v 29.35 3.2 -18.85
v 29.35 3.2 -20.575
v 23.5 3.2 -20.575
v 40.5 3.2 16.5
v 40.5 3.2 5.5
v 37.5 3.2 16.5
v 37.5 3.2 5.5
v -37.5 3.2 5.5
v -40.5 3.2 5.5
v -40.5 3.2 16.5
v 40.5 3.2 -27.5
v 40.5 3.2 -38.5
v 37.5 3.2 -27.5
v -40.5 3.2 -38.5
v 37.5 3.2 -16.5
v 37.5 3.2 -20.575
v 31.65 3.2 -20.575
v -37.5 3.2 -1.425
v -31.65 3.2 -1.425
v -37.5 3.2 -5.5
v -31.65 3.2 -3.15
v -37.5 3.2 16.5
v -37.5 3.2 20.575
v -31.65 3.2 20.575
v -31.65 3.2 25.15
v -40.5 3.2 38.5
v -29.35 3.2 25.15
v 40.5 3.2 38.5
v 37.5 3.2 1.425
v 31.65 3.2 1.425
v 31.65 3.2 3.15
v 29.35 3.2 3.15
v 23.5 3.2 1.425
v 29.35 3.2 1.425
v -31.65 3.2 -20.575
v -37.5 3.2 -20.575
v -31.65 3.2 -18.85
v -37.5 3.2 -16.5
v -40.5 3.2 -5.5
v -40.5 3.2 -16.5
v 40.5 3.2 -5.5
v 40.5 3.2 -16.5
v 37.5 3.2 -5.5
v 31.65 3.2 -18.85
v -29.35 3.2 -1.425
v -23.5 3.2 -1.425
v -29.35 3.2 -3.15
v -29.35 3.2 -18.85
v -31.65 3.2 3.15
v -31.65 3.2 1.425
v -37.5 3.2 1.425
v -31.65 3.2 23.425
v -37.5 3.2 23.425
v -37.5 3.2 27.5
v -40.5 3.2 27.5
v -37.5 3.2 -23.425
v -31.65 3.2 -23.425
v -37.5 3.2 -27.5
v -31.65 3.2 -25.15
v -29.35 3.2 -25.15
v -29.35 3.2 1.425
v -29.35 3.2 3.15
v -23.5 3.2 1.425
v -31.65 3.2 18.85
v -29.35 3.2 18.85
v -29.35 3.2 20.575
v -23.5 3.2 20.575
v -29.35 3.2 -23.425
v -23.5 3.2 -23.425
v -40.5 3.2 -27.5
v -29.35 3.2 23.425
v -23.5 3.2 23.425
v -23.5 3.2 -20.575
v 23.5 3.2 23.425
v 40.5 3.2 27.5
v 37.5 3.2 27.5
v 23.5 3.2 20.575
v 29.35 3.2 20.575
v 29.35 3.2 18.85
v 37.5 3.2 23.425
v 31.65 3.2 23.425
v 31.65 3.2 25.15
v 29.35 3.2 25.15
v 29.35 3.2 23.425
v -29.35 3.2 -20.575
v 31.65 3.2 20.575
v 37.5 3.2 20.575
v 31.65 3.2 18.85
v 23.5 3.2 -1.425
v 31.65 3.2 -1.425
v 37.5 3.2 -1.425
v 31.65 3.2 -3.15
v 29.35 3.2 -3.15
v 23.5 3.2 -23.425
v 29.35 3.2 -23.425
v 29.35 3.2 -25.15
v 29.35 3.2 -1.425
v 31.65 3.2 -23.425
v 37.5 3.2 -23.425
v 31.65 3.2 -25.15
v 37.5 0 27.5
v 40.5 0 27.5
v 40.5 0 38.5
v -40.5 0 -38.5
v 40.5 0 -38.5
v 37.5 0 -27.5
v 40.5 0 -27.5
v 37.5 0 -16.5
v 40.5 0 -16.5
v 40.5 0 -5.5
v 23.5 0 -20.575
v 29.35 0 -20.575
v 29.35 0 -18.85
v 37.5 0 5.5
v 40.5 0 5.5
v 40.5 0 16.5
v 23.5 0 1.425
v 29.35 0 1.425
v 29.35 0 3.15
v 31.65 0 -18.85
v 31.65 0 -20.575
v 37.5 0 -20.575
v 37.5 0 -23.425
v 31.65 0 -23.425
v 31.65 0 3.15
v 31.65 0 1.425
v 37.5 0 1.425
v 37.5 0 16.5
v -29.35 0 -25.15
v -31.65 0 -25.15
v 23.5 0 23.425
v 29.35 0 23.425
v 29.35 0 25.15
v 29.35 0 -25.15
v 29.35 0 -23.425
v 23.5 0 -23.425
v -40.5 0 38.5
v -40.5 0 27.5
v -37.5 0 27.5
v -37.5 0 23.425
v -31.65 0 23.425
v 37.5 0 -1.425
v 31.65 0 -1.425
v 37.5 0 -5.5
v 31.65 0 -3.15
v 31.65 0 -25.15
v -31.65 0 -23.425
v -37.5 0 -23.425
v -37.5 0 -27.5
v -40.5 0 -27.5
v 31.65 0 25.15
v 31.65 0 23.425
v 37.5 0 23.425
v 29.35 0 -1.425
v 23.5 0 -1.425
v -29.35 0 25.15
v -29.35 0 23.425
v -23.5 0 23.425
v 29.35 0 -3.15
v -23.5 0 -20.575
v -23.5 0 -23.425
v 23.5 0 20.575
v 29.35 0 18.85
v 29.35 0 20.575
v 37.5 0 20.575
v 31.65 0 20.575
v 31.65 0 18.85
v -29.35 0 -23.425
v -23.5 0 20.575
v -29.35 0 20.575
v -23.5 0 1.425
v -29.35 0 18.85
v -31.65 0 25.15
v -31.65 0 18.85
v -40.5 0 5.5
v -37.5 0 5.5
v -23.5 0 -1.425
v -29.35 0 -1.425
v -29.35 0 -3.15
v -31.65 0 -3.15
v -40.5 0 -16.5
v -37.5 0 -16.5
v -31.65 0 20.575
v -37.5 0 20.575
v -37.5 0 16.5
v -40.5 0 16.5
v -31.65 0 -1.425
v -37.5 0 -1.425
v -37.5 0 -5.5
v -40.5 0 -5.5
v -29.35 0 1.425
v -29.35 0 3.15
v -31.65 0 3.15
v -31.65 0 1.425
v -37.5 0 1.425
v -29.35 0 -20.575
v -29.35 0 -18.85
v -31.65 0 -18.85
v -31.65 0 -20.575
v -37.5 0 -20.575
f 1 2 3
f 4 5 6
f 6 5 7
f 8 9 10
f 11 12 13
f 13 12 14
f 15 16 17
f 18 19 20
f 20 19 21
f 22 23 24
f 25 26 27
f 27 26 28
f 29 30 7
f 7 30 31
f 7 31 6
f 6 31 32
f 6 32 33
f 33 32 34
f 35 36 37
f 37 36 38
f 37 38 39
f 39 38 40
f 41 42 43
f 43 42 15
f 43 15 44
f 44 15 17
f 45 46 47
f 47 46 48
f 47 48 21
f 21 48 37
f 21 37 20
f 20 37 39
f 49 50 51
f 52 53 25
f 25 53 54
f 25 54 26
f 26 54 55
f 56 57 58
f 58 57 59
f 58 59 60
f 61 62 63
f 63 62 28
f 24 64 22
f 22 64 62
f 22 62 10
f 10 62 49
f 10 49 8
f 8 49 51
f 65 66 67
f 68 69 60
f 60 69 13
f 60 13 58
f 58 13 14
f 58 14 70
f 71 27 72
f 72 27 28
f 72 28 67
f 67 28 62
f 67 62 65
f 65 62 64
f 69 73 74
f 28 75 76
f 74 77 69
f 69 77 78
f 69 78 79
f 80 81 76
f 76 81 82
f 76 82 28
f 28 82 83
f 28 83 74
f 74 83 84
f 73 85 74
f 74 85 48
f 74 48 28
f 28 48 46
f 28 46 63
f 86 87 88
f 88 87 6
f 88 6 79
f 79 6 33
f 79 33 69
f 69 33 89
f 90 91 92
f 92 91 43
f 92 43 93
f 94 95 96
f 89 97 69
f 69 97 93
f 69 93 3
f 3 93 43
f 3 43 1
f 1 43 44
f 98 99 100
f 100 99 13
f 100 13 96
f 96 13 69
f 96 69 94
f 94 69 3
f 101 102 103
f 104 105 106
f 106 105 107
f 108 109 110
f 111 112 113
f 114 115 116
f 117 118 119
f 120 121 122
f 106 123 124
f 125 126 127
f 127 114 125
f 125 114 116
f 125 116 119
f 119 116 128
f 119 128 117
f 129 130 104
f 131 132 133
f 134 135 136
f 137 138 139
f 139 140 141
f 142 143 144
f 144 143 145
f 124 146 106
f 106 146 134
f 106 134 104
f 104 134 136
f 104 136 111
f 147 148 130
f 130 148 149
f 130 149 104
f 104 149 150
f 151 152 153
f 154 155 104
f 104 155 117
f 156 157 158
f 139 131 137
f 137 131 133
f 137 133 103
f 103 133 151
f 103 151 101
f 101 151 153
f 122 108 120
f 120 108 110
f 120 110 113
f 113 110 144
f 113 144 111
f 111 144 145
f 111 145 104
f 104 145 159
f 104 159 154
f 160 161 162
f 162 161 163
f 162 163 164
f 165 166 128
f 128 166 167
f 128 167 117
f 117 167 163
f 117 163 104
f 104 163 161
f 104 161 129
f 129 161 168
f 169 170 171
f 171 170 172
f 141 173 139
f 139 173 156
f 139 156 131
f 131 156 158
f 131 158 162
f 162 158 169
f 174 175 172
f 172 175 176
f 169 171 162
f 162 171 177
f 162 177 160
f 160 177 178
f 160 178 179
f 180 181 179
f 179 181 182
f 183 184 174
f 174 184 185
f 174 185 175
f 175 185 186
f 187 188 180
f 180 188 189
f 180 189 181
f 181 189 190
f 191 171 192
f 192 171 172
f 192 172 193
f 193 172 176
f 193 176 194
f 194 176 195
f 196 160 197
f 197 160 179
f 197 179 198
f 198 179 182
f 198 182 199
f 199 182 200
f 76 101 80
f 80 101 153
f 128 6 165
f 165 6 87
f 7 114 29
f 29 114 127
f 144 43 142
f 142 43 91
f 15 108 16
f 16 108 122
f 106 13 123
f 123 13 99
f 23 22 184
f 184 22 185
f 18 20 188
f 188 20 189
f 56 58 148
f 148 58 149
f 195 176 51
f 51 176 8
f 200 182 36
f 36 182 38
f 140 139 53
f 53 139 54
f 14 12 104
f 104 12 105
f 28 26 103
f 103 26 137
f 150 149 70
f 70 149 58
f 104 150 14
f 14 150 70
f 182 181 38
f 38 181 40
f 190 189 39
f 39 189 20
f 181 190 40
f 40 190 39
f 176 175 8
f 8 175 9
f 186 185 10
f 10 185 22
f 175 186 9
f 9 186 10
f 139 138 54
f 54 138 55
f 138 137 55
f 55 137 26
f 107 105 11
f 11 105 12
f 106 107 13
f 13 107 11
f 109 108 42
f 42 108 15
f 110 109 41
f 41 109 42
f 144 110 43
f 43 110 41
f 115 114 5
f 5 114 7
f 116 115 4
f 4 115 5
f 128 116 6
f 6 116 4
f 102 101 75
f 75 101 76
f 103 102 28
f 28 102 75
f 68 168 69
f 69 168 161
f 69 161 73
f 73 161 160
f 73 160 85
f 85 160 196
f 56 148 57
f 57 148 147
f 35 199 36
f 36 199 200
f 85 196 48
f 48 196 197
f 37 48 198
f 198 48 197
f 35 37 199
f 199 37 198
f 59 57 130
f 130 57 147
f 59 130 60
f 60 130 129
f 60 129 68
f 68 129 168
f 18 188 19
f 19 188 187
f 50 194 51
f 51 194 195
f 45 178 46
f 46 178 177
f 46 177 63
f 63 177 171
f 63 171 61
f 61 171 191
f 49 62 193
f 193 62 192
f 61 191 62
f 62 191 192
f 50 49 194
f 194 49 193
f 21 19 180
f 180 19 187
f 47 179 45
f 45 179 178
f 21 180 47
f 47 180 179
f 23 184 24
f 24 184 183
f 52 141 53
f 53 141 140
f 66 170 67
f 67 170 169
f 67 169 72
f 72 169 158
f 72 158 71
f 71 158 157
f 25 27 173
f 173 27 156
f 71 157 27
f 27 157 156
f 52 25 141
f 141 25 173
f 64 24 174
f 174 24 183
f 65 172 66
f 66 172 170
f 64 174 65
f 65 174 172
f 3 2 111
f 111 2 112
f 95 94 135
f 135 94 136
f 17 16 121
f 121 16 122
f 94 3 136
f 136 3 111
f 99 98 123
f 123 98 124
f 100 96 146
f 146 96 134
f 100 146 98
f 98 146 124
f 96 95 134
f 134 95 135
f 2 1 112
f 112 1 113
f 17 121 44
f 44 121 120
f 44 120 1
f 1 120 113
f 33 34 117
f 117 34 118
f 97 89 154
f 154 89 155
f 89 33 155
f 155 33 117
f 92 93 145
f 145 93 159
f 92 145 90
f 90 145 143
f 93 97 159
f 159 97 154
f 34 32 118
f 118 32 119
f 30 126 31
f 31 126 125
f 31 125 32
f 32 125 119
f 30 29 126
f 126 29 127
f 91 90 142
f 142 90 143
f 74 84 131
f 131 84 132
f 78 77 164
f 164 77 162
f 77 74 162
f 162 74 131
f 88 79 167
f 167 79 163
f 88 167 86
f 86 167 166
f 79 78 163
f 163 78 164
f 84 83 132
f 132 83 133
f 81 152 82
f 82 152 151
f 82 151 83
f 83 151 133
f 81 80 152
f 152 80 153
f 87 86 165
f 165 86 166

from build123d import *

# Parameters (mm, degrees)
SKETCH1_W                 = 75
SKETCH1_H                 = 77
BOSS_EXTRUDE1_DEPTH       = 3.2
SKETCH2_W                 = 3
SKETCH2_H                 = 11
BOSS_EXTRUDE3_DEPTH       = 3.2
LPATTERN1_COUNT           = 4
LPATTERN1_PITCH           = 22
SKETCH4_W                 = 3
SKETCH4_H                 = 11
BOSS_EXTRUDE5_DEPTH       = 3.2
LPATTERN2_COUNT           = 4
LPATTERN2_PITCH           = 22
SKETCH5_W                 = 14
SKETCH5_H                 = 2.85
SKETCH5_W_2               = 2.3
SKETCH5_H_2               = 6.3
CUT_EXTRUDE1_DEPTH        = 56.970885289
LPATTERN3_COUNT           = 3
LPATTERN3_PITCH           = 22
MIRROR1_COPY_1_SKETCH_W   = 14
MIRROR1_COPY_1_SKETCH_H   = 2.85
MIRROR1_COPY_1_SKETCH_W_2 = 2.3
MIRROR1_COPY_1_SKETCH_H_2 = 6.3
MIRROR1_COPY_1_DEPTH      = 56.970885289
MIRROR1_COPY_2_SKETCH_W   = 14
MIRROR1_COPY_2_SKETCH_H   = 2.85
MIRROR1_COPY_2_SKETCH_W_2 = 2.3
MIRROR1_COPY_2_SKETCH_H_2 = 6.3
MIRROR1_COPY_2_DEPTH      = 56.970885289


with BuildPart() as part:
    # Sketch1 → Boss-Extrude1 (new body)
    with BuildSketch(Plane(origin=(0, 0, 0), x_dir=(1, 0, 0), z_dir=(0, 1, 0))):
        Rectangle(SKETCH1_W, SKETCH1_H)
    extrude(amount=BOSS_EXTRUDE1_DEPTH)

    # Sketch2 → Boss-Extrude3 (add)
    with BuildSketch(Plane(origin=(0, 3.2, 0), x_dir=(1, 0, 0), z_dir=(0, 1, 0))):
        with Locations((-39, 33)):
            Rectangle(SKETCH2_W, SKETCH2_H)
    boss_extrude3 = extrude(amount=-BOSS_EXTRUDE3_DEPTH)

    # LPattern1: Boss-Extrude3 ×4
    with Locations(*[(0, 0, i * LPATTERN1_PITCH) for i in range(1, LPATTERN1_COUNT)]):
        add(boss_extrude3)

    # Sketch4 → Boss-Extrude5 (add)
    with BuildSketch(Plane(origin=(0, 3.2, 0), x_dir=(1, 0, 0), z_dir=(0, 1, 0))):
        with Locations((39, 33)):
            Rectangle(SKETCH4_W, SKETCH4_H)
    boss_extrude5 = extrude(amount=-BOSS_EXTRUDE5_DEPTH)

    # LPattern2: Boss-Extrude5 ×4
    with Locations(*[(0, 0, i * LPATTERN2_PITCH) for i in range(1, LPATTERN2_COUNT)]):
        add(boss_extrude5)

    # Sketch5 → Cut-Extrude1 (cut, through all)
    with BuildSketch(Plane(origin=(0, 3.2, 0), x_dir=(1, 0, 0), z_dir=(0, 1, 0))):
        with Locations((-30.5, 22)):
            Rectangle(SKETCH5_W, SKETCH5_H)
        with Locations((-30.5, 22)):
            Rectangle(SKETCH5_W_2, SKETCH5_H_2)
    cut_extrude1 = extrude(amount=-CUT_EXTRUDE1_DEPTH, mode=Mode.SUBTRACT)

    # LPattern3: Cut-Extrude1 ×3
    with Locations(*[(0, 0, i * LPATTERN3_PITCH) for i in range(1, LPATTERN3_COUNT)]):
        add(cut_extrude1, mode=Mode.SUBTRACT)

    # Mirror1: Cut-Extrude1 across plane
    add(cut_extrude1.mirror(Plane(origin=(0, 0, 0), x_dir=(0, 0, 1), z_dir=(1, 0, 0))), mode=Mode.SUBTRACT)

    # Mirror1 copy 1 sketch → Mirror1 copy 1 (cut, through all)
    with BuildSketch(Plane(origin=(0, 3.2, 22), x_dir=(-1, 0, 0), z_dir=(0, 1, 0))):
        with Locations((-30.5, -22)):
            Rectangle(MIRROR1_COPY_1_SKETCH_W, MIRROR1_COPY_1_SKETCH_H)
        with Locations((-30.5, -22)):
            Rectangle(MIRROR1_COPY_1_SKETCH_W_2, MIRROR1_COPY_1_SKETCH_H_2)
    extrude(amount=-MIRROR1_COPY_1_DEPTH, mode=Mode.SUBTRACT)

    # Mirror1 copy 2 sketch → Mirror1 copy 2 (cut, through all)
    with BuildSketch(Plane(origin=(0, 3.2, 44), x_dir=(-1, 0, 0), z_dir=(0, 1, 0))):
        with Locations((-30.5, -22)):
            Rectangle(MIRROR1_COPY_2_SKETCH_W, MIRROR1_COPY_2_SKETCH_H)
        with Locations((-30.5, -22)):
            Rectangle(MIRROR1_COPY_2_SKETCH_W_2, MIRROR1_COPY_2_SKETCH_H_2)
    extrude(amount=-MIRROR1_COPY_2_DEPTH, mode=Mode.SUBTRACT)


solid = part.part
